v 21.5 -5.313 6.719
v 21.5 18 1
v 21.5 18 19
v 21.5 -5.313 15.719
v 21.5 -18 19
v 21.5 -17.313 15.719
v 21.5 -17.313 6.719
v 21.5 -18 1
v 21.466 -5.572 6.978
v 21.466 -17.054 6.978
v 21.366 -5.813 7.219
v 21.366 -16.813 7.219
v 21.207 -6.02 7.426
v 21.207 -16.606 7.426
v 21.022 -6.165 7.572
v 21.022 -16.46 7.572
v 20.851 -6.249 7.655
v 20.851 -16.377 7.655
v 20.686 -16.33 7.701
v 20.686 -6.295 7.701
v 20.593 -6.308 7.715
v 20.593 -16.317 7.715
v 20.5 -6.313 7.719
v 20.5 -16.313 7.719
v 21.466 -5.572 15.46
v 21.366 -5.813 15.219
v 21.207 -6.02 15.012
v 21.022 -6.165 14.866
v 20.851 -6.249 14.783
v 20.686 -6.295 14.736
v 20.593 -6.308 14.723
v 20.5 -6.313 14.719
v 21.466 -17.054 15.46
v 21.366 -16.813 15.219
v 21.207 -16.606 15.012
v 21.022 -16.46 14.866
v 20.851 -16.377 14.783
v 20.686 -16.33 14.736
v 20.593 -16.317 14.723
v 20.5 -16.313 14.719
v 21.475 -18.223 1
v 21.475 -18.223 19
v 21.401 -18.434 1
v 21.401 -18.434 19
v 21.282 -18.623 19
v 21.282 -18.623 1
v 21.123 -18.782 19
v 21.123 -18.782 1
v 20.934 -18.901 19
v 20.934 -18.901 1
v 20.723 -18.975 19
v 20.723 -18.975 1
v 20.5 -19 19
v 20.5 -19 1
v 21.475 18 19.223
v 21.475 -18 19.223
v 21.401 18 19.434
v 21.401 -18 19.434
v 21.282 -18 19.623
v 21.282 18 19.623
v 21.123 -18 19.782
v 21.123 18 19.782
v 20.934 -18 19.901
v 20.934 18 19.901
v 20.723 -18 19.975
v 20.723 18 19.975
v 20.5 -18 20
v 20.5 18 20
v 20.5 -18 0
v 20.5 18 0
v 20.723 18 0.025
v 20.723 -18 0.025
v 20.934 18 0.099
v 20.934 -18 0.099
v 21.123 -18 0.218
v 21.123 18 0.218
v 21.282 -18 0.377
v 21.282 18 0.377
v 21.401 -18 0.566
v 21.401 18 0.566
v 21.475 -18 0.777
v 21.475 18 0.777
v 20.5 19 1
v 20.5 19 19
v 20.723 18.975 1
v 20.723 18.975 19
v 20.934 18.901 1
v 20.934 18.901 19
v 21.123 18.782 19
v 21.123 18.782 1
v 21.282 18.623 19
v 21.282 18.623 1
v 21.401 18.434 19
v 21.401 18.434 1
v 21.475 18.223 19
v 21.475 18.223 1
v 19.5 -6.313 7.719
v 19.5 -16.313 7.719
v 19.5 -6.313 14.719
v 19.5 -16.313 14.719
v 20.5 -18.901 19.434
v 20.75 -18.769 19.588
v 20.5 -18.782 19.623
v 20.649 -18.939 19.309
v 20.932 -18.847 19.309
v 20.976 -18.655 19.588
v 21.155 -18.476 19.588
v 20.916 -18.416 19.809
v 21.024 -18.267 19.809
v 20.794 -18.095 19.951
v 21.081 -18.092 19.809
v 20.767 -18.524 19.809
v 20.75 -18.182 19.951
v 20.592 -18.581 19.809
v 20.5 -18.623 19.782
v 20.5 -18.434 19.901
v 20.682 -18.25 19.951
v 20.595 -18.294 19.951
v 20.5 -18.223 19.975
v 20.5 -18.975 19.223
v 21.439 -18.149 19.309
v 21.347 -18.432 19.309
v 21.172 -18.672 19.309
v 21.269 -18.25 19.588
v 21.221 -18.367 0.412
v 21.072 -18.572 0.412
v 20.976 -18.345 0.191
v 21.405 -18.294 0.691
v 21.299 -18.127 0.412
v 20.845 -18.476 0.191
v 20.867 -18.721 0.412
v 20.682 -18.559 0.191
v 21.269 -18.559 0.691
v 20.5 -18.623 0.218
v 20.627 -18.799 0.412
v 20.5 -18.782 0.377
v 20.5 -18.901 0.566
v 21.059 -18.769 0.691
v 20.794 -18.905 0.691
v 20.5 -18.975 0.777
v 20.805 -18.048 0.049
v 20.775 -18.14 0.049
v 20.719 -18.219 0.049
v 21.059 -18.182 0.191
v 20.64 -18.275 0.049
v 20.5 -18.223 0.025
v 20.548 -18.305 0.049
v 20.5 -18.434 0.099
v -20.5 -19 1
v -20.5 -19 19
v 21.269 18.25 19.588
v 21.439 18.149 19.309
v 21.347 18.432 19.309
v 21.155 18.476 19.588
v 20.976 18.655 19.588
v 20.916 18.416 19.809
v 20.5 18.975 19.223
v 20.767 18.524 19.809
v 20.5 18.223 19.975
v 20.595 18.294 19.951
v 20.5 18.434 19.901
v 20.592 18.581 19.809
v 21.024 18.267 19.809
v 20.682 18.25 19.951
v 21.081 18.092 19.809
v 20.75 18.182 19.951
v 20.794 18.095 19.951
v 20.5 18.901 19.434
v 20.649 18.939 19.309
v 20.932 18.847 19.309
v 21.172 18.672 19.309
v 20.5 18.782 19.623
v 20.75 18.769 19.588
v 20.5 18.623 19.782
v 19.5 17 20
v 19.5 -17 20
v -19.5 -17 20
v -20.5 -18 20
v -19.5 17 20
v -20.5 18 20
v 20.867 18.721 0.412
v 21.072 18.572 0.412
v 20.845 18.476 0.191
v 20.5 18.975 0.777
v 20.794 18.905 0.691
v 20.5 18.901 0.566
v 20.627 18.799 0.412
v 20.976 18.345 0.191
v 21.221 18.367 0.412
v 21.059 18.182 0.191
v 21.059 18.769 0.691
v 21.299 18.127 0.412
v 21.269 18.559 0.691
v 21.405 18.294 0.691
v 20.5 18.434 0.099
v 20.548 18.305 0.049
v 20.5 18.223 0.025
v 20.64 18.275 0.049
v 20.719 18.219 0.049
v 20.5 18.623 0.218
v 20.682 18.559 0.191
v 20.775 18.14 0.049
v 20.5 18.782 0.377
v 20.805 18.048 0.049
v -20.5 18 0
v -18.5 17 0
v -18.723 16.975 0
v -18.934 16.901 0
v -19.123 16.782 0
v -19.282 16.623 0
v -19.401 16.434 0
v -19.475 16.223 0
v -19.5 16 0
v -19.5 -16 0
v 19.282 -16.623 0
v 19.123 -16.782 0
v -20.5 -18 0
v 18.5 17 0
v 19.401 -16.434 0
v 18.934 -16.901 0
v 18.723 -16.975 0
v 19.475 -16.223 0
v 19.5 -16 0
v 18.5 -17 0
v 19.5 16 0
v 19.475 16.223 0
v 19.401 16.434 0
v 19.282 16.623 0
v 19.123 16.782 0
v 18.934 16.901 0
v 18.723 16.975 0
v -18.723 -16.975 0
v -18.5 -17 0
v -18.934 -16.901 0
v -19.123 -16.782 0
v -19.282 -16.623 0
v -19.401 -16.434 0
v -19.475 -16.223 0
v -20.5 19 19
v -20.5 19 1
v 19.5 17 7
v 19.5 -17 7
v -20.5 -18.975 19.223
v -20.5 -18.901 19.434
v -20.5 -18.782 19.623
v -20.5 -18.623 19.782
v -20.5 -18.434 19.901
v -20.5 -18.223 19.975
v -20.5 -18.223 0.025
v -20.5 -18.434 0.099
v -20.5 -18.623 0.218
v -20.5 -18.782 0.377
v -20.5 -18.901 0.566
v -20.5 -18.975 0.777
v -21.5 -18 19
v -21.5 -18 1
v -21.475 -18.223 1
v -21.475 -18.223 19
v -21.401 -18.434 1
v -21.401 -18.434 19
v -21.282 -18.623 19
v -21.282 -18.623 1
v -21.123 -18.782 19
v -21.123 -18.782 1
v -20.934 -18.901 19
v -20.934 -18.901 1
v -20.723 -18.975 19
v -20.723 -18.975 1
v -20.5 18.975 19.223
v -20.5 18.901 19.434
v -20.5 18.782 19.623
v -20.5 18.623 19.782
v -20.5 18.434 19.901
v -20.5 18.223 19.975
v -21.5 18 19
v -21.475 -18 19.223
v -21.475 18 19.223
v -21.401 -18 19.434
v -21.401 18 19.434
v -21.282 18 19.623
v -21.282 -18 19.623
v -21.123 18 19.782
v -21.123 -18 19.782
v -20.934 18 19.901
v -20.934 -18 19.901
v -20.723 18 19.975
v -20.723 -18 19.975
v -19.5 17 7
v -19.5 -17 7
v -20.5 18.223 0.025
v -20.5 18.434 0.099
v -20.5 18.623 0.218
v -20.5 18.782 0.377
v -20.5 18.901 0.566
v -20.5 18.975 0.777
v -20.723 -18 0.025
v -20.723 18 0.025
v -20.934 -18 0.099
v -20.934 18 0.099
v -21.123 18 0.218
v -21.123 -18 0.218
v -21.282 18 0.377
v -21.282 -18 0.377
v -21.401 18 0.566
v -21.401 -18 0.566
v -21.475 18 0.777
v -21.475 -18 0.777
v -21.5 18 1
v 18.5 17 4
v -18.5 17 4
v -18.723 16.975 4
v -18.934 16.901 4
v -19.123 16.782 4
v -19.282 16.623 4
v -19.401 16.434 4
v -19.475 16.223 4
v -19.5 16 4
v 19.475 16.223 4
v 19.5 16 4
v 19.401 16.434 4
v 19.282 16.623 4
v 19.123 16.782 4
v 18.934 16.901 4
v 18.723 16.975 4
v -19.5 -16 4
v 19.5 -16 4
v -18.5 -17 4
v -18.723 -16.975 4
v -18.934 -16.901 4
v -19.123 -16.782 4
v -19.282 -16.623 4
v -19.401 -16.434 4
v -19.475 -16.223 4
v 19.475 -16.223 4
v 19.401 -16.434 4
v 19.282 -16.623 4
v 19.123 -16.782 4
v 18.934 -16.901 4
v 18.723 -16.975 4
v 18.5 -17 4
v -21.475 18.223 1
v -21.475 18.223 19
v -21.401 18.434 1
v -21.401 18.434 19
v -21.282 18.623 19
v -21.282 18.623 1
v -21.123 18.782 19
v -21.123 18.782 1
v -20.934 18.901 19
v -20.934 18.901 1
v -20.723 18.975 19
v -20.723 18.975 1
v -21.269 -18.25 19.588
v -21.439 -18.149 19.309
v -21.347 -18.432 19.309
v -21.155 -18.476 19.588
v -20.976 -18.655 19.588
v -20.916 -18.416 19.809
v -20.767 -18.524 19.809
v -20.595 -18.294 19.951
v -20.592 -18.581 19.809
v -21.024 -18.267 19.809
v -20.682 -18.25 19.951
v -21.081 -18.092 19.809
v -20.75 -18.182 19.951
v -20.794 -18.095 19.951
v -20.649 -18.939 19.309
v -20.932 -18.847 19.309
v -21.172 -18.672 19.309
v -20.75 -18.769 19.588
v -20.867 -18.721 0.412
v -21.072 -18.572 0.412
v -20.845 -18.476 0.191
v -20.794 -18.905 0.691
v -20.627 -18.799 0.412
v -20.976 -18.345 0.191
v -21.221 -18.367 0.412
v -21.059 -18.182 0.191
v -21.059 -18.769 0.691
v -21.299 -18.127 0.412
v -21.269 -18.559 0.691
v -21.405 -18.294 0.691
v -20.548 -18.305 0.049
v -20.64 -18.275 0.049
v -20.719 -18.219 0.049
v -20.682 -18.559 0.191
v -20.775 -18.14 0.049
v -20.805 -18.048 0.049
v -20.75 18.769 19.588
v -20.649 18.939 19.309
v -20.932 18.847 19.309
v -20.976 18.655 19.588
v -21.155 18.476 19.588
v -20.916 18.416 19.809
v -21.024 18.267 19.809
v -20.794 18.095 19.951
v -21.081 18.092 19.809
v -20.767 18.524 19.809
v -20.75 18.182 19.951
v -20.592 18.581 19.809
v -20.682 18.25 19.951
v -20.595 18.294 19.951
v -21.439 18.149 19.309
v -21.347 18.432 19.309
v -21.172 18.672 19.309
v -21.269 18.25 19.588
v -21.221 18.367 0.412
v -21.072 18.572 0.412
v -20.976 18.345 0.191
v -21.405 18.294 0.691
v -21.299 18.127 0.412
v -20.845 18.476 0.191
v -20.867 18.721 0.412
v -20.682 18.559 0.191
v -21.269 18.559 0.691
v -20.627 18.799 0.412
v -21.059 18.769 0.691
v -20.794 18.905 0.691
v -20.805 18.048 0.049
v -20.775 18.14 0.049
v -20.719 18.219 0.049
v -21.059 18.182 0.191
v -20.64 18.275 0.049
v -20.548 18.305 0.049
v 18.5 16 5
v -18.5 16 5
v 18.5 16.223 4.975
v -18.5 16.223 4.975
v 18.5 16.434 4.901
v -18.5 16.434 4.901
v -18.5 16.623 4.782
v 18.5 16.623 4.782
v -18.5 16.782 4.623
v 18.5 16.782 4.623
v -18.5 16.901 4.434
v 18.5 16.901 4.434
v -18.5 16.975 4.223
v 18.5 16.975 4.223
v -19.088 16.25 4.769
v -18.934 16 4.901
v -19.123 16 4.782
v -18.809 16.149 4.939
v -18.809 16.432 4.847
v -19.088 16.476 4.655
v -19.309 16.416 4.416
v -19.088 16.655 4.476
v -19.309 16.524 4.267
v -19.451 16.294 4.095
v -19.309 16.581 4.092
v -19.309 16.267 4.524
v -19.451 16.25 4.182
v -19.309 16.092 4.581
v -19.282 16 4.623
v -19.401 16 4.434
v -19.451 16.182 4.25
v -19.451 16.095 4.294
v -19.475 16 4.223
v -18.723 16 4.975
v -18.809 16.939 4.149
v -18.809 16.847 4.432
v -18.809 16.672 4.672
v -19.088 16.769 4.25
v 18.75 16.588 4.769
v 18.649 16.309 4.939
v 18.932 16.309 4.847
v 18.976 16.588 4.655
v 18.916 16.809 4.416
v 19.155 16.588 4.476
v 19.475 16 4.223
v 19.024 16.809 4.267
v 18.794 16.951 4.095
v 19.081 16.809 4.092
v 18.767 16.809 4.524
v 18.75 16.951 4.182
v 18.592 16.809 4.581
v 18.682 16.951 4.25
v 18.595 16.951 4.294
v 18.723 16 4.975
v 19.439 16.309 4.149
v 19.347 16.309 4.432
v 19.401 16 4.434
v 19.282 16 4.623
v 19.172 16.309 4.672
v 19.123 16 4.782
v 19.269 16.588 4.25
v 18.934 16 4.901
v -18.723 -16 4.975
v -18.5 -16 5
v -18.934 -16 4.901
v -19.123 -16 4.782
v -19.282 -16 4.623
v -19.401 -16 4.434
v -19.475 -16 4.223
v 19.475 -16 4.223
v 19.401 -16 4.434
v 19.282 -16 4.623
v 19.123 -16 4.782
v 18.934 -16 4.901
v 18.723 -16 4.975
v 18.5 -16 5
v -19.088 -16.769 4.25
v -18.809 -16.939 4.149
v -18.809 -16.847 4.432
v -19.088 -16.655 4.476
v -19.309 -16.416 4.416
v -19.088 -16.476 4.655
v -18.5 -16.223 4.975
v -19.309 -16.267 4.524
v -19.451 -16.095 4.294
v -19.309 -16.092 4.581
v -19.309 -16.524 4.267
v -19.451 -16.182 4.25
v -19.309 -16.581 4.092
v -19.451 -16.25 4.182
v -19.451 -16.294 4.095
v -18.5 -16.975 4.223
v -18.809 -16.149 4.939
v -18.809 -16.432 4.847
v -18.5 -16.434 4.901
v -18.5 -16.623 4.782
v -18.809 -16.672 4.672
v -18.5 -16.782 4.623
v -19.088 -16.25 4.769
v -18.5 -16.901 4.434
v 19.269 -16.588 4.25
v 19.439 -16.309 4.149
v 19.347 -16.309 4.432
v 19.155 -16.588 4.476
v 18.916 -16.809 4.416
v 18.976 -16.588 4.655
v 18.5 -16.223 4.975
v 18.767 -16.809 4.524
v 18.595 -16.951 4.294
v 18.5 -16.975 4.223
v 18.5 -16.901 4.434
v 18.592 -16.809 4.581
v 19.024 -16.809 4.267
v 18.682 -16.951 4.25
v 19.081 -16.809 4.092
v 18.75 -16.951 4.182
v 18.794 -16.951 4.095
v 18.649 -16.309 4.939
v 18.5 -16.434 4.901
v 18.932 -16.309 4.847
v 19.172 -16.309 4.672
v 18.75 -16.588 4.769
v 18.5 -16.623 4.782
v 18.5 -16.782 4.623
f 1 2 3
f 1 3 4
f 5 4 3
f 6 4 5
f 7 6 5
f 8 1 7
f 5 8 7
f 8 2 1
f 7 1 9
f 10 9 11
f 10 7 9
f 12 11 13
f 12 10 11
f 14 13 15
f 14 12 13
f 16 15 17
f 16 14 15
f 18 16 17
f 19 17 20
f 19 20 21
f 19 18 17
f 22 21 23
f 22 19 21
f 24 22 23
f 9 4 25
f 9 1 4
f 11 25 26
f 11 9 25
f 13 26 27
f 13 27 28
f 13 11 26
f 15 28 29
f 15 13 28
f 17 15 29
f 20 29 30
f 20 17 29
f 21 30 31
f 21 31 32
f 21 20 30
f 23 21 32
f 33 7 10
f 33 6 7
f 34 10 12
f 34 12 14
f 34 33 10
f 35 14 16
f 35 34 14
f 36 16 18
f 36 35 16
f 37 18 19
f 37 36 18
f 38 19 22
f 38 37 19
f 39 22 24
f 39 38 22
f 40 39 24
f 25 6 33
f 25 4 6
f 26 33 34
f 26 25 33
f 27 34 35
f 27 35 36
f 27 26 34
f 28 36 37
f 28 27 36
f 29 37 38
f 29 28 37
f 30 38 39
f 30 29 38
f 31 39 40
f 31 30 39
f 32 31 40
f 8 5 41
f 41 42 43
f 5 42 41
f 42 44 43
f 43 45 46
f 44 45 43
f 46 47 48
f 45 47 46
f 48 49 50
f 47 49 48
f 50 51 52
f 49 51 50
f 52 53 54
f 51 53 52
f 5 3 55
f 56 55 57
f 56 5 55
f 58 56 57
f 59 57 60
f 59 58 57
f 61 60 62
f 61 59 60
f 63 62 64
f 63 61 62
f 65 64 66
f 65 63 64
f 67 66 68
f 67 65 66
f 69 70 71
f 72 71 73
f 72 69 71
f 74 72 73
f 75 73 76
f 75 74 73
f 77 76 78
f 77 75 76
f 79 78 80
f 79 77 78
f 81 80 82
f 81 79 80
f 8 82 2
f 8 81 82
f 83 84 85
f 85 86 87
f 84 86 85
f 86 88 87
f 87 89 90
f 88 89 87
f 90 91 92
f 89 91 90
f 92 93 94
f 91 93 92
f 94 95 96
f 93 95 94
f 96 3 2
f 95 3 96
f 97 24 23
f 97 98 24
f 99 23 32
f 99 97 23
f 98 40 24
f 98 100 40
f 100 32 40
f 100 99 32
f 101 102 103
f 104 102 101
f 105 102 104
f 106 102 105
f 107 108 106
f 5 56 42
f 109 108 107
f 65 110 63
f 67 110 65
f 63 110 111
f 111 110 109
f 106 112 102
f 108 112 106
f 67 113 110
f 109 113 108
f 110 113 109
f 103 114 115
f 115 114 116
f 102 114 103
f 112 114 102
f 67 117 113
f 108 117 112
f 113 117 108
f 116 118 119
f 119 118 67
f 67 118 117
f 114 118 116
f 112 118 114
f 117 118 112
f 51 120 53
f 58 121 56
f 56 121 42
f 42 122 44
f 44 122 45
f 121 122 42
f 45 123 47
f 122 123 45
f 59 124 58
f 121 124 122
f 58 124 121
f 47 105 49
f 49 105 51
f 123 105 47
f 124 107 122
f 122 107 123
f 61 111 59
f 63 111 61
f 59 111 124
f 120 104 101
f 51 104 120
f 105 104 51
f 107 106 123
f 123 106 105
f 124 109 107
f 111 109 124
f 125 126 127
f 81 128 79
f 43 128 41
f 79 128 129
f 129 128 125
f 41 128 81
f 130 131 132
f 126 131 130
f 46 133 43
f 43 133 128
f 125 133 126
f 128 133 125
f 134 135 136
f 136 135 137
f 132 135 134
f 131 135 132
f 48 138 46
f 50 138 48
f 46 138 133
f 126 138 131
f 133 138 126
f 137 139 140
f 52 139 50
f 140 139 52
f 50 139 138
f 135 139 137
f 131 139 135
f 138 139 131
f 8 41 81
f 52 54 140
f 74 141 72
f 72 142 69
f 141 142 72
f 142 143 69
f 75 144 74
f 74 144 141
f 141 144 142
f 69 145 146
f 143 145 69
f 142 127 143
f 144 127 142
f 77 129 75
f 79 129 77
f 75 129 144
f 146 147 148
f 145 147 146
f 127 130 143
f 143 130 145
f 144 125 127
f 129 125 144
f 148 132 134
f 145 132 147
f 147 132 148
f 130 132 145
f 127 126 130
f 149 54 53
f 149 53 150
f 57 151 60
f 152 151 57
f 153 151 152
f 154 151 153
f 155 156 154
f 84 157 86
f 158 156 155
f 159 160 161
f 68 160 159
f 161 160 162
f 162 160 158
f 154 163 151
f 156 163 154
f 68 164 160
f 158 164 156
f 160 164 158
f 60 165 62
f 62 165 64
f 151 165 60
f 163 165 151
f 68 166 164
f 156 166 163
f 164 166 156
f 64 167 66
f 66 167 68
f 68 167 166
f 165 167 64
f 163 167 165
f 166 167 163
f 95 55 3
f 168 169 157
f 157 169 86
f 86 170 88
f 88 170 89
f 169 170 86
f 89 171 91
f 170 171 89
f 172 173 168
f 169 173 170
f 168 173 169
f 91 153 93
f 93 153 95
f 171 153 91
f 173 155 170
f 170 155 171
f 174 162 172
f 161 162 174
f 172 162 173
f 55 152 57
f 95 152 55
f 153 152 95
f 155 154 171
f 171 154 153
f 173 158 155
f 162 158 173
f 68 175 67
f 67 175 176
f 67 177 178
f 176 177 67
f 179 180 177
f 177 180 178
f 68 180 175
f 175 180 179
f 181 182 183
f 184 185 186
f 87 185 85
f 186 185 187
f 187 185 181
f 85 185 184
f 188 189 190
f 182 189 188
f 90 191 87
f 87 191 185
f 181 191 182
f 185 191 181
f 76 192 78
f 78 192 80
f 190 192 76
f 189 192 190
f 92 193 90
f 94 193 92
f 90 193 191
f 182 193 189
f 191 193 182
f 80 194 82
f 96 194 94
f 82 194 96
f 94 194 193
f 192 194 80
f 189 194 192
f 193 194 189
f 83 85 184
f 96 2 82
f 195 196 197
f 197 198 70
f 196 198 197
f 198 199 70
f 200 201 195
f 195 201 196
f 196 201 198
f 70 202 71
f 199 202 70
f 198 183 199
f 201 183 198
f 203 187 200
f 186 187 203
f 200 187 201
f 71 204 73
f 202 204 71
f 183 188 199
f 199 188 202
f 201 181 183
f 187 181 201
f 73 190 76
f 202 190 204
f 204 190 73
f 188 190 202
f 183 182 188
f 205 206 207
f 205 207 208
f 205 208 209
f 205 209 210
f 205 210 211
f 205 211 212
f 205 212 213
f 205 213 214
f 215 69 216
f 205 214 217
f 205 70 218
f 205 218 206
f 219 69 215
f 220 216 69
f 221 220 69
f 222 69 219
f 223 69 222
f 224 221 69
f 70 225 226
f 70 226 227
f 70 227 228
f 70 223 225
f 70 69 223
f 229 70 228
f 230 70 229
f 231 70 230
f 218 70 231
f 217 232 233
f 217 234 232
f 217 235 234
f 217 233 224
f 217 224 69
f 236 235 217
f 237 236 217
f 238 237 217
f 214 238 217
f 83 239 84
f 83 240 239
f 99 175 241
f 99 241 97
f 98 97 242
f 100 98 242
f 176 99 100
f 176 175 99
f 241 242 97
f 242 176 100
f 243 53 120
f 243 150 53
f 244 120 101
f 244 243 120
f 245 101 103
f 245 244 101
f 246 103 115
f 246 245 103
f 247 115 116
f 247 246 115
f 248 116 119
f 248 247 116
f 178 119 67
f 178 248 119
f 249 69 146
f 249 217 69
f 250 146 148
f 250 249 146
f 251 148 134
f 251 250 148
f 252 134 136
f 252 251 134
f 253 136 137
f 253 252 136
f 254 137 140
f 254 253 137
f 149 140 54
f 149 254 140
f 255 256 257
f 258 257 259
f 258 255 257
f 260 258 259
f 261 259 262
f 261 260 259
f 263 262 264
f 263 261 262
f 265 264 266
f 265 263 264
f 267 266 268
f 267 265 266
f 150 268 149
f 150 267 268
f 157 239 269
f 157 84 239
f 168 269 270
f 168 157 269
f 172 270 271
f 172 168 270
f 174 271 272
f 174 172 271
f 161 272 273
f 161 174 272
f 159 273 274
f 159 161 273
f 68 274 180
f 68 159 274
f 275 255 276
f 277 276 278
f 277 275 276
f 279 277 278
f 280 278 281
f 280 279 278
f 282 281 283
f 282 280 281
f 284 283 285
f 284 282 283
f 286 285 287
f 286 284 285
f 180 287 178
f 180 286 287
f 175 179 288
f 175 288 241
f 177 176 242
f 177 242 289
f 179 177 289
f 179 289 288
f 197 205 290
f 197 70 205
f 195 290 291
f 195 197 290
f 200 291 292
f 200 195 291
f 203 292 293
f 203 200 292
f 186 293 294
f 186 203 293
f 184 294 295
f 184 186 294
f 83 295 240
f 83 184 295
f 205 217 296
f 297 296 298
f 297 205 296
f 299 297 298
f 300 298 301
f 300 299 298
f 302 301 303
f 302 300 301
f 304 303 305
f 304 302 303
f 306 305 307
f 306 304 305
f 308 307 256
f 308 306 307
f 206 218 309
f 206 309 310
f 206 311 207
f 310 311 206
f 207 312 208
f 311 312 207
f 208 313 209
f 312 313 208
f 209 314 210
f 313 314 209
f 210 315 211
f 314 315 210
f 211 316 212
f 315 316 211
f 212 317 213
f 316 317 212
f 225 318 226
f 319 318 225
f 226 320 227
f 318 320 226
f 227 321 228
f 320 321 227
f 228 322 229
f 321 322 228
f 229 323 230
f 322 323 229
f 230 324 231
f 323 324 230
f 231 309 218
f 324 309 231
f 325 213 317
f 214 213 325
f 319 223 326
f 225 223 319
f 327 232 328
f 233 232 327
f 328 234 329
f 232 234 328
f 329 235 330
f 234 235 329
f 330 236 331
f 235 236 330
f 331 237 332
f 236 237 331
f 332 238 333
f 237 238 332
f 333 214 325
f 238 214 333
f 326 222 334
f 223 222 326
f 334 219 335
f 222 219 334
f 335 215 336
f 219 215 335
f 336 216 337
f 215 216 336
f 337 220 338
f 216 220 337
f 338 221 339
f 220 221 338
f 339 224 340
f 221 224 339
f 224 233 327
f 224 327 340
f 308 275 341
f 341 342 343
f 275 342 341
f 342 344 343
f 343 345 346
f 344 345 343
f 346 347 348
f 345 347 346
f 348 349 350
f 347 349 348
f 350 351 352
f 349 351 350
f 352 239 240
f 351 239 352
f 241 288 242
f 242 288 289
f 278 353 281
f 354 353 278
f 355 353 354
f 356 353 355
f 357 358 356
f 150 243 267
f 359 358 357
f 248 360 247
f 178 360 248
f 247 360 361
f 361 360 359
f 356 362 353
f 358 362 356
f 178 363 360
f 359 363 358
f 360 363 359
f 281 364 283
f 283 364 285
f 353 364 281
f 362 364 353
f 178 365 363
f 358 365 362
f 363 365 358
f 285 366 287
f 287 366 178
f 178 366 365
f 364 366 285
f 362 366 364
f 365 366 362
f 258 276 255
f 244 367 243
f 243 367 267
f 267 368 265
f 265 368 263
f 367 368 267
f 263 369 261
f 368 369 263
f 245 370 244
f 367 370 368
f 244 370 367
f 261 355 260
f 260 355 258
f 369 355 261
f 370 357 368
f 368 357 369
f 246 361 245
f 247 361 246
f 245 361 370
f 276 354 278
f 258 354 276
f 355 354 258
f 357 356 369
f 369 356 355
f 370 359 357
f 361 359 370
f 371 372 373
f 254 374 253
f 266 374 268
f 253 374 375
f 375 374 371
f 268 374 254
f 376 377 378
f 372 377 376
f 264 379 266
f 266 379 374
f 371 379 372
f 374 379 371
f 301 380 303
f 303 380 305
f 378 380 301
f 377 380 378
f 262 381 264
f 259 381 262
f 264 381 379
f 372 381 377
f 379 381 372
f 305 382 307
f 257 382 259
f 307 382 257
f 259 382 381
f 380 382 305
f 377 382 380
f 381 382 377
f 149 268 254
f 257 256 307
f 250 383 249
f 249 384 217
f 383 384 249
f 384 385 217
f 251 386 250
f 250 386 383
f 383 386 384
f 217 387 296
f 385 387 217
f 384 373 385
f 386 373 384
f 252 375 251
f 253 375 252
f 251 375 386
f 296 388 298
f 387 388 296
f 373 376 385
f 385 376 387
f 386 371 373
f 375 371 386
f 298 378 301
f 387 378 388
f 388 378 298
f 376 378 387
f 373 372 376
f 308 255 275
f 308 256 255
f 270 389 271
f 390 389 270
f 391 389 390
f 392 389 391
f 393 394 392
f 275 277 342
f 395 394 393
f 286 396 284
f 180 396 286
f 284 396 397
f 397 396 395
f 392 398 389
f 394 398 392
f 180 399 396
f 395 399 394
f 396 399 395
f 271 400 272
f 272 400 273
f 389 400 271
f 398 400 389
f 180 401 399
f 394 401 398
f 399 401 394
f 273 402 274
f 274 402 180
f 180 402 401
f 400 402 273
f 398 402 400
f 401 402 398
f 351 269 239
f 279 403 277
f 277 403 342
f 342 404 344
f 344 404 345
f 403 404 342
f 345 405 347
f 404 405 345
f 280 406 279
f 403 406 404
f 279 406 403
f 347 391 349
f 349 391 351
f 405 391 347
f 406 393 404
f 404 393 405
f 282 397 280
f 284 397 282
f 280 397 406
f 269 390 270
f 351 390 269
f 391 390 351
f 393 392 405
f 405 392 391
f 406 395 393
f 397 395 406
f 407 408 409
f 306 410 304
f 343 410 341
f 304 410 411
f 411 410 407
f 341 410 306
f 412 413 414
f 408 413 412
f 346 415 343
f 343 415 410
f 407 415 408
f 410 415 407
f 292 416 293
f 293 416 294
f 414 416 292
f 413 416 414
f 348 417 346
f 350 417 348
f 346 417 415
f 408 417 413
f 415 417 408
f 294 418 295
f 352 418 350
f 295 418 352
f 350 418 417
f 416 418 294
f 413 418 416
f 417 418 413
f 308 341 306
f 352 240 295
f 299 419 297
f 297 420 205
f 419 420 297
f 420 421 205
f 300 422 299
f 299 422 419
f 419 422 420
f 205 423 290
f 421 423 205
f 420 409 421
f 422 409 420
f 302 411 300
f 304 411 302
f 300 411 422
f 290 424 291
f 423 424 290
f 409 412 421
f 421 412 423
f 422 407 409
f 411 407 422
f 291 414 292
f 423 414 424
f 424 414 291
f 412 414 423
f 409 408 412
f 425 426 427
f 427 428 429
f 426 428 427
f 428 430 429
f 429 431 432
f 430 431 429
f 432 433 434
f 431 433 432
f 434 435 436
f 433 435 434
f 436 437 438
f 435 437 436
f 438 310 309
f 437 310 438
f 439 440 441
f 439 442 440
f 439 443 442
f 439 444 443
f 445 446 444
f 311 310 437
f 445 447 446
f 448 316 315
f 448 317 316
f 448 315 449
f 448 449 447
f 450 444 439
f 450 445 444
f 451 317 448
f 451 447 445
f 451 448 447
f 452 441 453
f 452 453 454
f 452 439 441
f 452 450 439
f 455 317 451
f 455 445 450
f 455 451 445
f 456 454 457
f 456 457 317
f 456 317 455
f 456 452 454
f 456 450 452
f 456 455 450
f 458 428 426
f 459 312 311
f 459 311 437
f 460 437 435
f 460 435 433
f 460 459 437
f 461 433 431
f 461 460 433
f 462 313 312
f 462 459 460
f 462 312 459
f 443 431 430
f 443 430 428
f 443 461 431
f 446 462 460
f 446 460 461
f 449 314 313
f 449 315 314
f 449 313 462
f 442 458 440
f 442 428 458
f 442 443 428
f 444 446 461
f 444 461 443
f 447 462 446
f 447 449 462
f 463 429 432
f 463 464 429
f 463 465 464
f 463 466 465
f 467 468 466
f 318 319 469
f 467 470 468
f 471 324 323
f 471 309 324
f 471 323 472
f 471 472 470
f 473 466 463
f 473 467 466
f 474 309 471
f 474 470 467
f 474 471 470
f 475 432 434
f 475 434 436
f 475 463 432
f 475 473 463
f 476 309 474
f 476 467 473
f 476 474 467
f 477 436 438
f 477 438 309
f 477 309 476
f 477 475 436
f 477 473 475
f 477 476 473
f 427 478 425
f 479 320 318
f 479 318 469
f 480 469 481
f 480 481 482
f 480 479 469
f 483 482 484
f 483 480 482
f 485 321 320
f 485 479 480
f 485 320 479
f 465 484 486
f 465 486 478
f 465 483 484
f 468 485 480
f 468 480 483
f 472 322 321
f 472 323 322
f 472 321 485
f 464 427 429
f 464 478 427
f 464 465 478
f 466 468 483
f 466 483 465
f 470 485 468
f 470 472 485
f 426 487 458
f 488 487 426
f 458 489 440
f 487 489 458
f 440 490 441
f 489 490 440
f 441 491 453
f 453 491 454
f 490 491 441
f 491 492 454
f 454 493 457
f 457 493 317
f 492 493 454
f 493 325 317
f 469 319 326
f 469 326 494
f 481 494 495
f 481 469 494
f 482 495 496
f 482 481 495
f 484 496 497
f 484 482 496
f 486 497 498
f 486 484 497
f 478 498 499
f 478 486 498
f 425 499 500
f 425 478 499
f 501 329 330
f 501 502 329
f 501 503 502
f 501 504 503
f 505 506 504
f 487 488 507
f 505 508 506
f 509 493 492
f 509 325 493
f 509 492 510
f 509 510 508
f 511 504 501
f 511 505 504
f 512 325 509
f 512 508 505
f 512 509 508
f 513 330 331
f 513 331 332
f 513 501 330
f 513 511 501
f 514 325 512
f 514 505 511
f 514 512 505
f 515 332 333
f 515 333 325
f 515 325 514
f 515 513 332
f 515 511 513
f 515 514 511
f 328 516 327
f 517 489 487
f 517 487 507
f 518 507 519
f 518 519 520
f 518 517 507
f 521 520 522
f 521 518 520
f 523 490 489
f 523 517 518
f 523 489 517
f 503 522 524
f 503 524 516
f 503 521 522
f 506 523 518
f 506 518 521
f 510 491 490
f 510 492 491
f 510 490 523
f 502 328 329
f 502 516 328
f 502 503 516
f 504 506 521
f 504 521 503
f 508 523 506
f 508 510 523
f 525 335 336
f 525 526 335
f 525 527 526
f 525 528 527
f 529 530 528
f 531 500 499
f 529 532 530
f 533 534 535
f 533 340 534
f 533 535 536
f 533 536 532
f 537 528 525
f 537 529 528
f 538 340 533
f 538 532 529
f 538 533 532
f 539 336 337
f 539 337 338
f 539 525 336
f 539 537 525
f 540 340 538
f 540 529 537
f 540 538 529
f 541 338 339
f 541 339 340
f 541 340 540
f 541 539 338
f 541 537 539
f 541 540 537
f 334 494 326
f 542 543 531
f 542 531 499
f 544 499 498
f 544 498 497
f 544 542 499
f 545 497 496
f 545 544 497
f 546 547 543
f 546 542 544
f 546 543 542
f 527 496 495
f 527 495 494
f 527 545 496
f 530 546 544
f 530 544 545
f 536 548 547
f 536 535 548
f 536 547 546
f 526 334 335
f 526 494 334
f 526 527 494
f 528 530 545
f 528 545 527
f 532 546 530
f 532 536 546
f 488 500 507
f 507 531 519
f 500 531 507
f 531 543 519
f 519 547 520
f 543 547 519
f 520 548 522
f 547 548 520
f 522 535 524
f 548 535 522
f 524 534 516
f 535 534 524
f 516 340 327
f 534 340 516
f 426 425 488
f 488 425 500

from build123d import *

# Parameters (mm, degrees)
SKETCH_W        = 43
SKETCH_H        = 38
PAD_DEPTH       = 20
SKETCH002_W     = 39
SKETCH002_H     = 34
POCKET001_DEPTH = 5
SKETCH003_W     = 39
SKETCH003_H     = 34
POCKET_DEPTH    = 13
FILLET_R        = 1
FILLET001_R     = 1
FILLET002_R     = 1
FILLET003_R     = 1
FILLET004_R     = 1
FILLET005_R     = 1
FILLET006_R     = 1
FILLET007_R     = 1
FILLET008_R     = 1
FILLET009_R     = 1
SKETCH005_W     = 10
SKETCH005_H     = 7
POCKET002_DEPTH = 5
FILLET010_R     = 1


with BuildPart() as part:
    # Sketch → Pad (new body)
    with BuildSketch(Plane.XY):
        Rectangle(SKETCH_W, SKETCH_H)
    extrude(amount=PAD_DEPTH)

    # Sketch002 → Pocket001 (cut)
    with BuildSketch(Plane(origin=(0, 0, 0), x_dir=(1, 0, 0), z_dir=(0, 0, -1))):
        Rectangle(SKETCH002_W, SKETCH002_H)
    extrude(amount=-POCKET001_DEPTH, mode=Mode.SUBTRACT)

    # Sketch003 (on Face5 of Pocket001) → Pocket (cut)
    with BuildSketch(Plane.XY.offset(20)):
        Rectangle(SKETCH003_W, SKETCH003_H)
    extrude(amount=-POCKET_DEPTH, mode=Mode.SUBTRACT)

    # Fillet
    fillet_edges = [part.edges().sort_by_distance(p)[0] for p in [
        (19.5, 0, 5),
    ]]
    fillet(fillet_edges, radius=FILLET_R)

    # Fillet001
    fillet001_edges = [part.edges().sort_by_distance(p)[0] for p in [
        (-0.5, -17, 5),
    ]]
    fillet(fillet001_edges, radius=FILLET001_R)

    # Fillet002
    fillet002_edges = [part.edges().sort_by_distance(p)[0] for p in [
        (-0.5, 17, 5),
    ]]
    fillet(fillet002_edges, radius=FILLET002_R)

    # Fillet003
    fillet003_edges = [part.edges().sort_by_distance(p)[0] for p in [
        (-19.5, 0, 5),
    ]]
    fillet(fillet003_edges, radius=FILLET003_R)

    # Fillet004
    fillet004_edges = [part.edges().sort_by_distance(p)[0] for p in [
        (-21.5, -19, 10),
    ]]
    fillet(fillet004_edges, radius=FILLET004_R)

    # Fillet005
    fillet005_edges = [part.edges().sort_by_distance(p)[0] for p in [
        (-21.5, 19, 10),
    ]]
    fillet(fillet005_edges, radius=FILLET005_R)

    # Fillet006
    fillet006_edges = [part.edges().sort_by_distance(p)[0] for p in [
        (21.5, 19, 10),
    ]]
    fillet(fillet006_edges, radius=FILLET006_R)

    # Fillet007
    fillet007_edges = [part.edges().sort_by_distance(p)[0] for p in [
        (21.5, -19, 10),
    ]]
    fillet(fillet007_edges, radius=FILLET007_R)

    # Fillet008
    fillet008_edges = [part.edges().sort_by_distance(p)[0] for p in [
        (21.5, 0, 0),
    ]]
    fillet(fillet008_edges, radius=FILLET008_R)

    # Fillet009
    fillet009_edges = [part.edges().sort_by_distance(p)[0] for p in [
        (21.5, 0, 20),
    ]]
    fillet(fillet009_edges, radius=FILLET009_R)

    # Sketch005 (on Face20 of Fillet009) → Pocket002 (cut)
    with BuildSketch(Plane(origin=(19.5, 0, 0), x_dir=(0, -1, 0), z_dir=(-1, 0, 0))):
        with Locations((11.312831, 11.218941)):
            Rectangle(SKETCH005_W, SKETCH005_H)
    extrude(amount=-POCKET002_DEPTH, mode=Mode.SUBTRACT)

    # Fillet010
    fillet010_edges = [part.edges().sort_by_distance(p)[0] for p in [
        (21.5, -11.312831, 7.718941),
        (21.5, -16.312831, 11.218941),
        (21.5, -11.312831, 14.718941),
        (21.5, -6.312831, 11.218941),
    ]]
    fillet(fillet010_edges, radius=FILLET010_R)


solid = part.part
